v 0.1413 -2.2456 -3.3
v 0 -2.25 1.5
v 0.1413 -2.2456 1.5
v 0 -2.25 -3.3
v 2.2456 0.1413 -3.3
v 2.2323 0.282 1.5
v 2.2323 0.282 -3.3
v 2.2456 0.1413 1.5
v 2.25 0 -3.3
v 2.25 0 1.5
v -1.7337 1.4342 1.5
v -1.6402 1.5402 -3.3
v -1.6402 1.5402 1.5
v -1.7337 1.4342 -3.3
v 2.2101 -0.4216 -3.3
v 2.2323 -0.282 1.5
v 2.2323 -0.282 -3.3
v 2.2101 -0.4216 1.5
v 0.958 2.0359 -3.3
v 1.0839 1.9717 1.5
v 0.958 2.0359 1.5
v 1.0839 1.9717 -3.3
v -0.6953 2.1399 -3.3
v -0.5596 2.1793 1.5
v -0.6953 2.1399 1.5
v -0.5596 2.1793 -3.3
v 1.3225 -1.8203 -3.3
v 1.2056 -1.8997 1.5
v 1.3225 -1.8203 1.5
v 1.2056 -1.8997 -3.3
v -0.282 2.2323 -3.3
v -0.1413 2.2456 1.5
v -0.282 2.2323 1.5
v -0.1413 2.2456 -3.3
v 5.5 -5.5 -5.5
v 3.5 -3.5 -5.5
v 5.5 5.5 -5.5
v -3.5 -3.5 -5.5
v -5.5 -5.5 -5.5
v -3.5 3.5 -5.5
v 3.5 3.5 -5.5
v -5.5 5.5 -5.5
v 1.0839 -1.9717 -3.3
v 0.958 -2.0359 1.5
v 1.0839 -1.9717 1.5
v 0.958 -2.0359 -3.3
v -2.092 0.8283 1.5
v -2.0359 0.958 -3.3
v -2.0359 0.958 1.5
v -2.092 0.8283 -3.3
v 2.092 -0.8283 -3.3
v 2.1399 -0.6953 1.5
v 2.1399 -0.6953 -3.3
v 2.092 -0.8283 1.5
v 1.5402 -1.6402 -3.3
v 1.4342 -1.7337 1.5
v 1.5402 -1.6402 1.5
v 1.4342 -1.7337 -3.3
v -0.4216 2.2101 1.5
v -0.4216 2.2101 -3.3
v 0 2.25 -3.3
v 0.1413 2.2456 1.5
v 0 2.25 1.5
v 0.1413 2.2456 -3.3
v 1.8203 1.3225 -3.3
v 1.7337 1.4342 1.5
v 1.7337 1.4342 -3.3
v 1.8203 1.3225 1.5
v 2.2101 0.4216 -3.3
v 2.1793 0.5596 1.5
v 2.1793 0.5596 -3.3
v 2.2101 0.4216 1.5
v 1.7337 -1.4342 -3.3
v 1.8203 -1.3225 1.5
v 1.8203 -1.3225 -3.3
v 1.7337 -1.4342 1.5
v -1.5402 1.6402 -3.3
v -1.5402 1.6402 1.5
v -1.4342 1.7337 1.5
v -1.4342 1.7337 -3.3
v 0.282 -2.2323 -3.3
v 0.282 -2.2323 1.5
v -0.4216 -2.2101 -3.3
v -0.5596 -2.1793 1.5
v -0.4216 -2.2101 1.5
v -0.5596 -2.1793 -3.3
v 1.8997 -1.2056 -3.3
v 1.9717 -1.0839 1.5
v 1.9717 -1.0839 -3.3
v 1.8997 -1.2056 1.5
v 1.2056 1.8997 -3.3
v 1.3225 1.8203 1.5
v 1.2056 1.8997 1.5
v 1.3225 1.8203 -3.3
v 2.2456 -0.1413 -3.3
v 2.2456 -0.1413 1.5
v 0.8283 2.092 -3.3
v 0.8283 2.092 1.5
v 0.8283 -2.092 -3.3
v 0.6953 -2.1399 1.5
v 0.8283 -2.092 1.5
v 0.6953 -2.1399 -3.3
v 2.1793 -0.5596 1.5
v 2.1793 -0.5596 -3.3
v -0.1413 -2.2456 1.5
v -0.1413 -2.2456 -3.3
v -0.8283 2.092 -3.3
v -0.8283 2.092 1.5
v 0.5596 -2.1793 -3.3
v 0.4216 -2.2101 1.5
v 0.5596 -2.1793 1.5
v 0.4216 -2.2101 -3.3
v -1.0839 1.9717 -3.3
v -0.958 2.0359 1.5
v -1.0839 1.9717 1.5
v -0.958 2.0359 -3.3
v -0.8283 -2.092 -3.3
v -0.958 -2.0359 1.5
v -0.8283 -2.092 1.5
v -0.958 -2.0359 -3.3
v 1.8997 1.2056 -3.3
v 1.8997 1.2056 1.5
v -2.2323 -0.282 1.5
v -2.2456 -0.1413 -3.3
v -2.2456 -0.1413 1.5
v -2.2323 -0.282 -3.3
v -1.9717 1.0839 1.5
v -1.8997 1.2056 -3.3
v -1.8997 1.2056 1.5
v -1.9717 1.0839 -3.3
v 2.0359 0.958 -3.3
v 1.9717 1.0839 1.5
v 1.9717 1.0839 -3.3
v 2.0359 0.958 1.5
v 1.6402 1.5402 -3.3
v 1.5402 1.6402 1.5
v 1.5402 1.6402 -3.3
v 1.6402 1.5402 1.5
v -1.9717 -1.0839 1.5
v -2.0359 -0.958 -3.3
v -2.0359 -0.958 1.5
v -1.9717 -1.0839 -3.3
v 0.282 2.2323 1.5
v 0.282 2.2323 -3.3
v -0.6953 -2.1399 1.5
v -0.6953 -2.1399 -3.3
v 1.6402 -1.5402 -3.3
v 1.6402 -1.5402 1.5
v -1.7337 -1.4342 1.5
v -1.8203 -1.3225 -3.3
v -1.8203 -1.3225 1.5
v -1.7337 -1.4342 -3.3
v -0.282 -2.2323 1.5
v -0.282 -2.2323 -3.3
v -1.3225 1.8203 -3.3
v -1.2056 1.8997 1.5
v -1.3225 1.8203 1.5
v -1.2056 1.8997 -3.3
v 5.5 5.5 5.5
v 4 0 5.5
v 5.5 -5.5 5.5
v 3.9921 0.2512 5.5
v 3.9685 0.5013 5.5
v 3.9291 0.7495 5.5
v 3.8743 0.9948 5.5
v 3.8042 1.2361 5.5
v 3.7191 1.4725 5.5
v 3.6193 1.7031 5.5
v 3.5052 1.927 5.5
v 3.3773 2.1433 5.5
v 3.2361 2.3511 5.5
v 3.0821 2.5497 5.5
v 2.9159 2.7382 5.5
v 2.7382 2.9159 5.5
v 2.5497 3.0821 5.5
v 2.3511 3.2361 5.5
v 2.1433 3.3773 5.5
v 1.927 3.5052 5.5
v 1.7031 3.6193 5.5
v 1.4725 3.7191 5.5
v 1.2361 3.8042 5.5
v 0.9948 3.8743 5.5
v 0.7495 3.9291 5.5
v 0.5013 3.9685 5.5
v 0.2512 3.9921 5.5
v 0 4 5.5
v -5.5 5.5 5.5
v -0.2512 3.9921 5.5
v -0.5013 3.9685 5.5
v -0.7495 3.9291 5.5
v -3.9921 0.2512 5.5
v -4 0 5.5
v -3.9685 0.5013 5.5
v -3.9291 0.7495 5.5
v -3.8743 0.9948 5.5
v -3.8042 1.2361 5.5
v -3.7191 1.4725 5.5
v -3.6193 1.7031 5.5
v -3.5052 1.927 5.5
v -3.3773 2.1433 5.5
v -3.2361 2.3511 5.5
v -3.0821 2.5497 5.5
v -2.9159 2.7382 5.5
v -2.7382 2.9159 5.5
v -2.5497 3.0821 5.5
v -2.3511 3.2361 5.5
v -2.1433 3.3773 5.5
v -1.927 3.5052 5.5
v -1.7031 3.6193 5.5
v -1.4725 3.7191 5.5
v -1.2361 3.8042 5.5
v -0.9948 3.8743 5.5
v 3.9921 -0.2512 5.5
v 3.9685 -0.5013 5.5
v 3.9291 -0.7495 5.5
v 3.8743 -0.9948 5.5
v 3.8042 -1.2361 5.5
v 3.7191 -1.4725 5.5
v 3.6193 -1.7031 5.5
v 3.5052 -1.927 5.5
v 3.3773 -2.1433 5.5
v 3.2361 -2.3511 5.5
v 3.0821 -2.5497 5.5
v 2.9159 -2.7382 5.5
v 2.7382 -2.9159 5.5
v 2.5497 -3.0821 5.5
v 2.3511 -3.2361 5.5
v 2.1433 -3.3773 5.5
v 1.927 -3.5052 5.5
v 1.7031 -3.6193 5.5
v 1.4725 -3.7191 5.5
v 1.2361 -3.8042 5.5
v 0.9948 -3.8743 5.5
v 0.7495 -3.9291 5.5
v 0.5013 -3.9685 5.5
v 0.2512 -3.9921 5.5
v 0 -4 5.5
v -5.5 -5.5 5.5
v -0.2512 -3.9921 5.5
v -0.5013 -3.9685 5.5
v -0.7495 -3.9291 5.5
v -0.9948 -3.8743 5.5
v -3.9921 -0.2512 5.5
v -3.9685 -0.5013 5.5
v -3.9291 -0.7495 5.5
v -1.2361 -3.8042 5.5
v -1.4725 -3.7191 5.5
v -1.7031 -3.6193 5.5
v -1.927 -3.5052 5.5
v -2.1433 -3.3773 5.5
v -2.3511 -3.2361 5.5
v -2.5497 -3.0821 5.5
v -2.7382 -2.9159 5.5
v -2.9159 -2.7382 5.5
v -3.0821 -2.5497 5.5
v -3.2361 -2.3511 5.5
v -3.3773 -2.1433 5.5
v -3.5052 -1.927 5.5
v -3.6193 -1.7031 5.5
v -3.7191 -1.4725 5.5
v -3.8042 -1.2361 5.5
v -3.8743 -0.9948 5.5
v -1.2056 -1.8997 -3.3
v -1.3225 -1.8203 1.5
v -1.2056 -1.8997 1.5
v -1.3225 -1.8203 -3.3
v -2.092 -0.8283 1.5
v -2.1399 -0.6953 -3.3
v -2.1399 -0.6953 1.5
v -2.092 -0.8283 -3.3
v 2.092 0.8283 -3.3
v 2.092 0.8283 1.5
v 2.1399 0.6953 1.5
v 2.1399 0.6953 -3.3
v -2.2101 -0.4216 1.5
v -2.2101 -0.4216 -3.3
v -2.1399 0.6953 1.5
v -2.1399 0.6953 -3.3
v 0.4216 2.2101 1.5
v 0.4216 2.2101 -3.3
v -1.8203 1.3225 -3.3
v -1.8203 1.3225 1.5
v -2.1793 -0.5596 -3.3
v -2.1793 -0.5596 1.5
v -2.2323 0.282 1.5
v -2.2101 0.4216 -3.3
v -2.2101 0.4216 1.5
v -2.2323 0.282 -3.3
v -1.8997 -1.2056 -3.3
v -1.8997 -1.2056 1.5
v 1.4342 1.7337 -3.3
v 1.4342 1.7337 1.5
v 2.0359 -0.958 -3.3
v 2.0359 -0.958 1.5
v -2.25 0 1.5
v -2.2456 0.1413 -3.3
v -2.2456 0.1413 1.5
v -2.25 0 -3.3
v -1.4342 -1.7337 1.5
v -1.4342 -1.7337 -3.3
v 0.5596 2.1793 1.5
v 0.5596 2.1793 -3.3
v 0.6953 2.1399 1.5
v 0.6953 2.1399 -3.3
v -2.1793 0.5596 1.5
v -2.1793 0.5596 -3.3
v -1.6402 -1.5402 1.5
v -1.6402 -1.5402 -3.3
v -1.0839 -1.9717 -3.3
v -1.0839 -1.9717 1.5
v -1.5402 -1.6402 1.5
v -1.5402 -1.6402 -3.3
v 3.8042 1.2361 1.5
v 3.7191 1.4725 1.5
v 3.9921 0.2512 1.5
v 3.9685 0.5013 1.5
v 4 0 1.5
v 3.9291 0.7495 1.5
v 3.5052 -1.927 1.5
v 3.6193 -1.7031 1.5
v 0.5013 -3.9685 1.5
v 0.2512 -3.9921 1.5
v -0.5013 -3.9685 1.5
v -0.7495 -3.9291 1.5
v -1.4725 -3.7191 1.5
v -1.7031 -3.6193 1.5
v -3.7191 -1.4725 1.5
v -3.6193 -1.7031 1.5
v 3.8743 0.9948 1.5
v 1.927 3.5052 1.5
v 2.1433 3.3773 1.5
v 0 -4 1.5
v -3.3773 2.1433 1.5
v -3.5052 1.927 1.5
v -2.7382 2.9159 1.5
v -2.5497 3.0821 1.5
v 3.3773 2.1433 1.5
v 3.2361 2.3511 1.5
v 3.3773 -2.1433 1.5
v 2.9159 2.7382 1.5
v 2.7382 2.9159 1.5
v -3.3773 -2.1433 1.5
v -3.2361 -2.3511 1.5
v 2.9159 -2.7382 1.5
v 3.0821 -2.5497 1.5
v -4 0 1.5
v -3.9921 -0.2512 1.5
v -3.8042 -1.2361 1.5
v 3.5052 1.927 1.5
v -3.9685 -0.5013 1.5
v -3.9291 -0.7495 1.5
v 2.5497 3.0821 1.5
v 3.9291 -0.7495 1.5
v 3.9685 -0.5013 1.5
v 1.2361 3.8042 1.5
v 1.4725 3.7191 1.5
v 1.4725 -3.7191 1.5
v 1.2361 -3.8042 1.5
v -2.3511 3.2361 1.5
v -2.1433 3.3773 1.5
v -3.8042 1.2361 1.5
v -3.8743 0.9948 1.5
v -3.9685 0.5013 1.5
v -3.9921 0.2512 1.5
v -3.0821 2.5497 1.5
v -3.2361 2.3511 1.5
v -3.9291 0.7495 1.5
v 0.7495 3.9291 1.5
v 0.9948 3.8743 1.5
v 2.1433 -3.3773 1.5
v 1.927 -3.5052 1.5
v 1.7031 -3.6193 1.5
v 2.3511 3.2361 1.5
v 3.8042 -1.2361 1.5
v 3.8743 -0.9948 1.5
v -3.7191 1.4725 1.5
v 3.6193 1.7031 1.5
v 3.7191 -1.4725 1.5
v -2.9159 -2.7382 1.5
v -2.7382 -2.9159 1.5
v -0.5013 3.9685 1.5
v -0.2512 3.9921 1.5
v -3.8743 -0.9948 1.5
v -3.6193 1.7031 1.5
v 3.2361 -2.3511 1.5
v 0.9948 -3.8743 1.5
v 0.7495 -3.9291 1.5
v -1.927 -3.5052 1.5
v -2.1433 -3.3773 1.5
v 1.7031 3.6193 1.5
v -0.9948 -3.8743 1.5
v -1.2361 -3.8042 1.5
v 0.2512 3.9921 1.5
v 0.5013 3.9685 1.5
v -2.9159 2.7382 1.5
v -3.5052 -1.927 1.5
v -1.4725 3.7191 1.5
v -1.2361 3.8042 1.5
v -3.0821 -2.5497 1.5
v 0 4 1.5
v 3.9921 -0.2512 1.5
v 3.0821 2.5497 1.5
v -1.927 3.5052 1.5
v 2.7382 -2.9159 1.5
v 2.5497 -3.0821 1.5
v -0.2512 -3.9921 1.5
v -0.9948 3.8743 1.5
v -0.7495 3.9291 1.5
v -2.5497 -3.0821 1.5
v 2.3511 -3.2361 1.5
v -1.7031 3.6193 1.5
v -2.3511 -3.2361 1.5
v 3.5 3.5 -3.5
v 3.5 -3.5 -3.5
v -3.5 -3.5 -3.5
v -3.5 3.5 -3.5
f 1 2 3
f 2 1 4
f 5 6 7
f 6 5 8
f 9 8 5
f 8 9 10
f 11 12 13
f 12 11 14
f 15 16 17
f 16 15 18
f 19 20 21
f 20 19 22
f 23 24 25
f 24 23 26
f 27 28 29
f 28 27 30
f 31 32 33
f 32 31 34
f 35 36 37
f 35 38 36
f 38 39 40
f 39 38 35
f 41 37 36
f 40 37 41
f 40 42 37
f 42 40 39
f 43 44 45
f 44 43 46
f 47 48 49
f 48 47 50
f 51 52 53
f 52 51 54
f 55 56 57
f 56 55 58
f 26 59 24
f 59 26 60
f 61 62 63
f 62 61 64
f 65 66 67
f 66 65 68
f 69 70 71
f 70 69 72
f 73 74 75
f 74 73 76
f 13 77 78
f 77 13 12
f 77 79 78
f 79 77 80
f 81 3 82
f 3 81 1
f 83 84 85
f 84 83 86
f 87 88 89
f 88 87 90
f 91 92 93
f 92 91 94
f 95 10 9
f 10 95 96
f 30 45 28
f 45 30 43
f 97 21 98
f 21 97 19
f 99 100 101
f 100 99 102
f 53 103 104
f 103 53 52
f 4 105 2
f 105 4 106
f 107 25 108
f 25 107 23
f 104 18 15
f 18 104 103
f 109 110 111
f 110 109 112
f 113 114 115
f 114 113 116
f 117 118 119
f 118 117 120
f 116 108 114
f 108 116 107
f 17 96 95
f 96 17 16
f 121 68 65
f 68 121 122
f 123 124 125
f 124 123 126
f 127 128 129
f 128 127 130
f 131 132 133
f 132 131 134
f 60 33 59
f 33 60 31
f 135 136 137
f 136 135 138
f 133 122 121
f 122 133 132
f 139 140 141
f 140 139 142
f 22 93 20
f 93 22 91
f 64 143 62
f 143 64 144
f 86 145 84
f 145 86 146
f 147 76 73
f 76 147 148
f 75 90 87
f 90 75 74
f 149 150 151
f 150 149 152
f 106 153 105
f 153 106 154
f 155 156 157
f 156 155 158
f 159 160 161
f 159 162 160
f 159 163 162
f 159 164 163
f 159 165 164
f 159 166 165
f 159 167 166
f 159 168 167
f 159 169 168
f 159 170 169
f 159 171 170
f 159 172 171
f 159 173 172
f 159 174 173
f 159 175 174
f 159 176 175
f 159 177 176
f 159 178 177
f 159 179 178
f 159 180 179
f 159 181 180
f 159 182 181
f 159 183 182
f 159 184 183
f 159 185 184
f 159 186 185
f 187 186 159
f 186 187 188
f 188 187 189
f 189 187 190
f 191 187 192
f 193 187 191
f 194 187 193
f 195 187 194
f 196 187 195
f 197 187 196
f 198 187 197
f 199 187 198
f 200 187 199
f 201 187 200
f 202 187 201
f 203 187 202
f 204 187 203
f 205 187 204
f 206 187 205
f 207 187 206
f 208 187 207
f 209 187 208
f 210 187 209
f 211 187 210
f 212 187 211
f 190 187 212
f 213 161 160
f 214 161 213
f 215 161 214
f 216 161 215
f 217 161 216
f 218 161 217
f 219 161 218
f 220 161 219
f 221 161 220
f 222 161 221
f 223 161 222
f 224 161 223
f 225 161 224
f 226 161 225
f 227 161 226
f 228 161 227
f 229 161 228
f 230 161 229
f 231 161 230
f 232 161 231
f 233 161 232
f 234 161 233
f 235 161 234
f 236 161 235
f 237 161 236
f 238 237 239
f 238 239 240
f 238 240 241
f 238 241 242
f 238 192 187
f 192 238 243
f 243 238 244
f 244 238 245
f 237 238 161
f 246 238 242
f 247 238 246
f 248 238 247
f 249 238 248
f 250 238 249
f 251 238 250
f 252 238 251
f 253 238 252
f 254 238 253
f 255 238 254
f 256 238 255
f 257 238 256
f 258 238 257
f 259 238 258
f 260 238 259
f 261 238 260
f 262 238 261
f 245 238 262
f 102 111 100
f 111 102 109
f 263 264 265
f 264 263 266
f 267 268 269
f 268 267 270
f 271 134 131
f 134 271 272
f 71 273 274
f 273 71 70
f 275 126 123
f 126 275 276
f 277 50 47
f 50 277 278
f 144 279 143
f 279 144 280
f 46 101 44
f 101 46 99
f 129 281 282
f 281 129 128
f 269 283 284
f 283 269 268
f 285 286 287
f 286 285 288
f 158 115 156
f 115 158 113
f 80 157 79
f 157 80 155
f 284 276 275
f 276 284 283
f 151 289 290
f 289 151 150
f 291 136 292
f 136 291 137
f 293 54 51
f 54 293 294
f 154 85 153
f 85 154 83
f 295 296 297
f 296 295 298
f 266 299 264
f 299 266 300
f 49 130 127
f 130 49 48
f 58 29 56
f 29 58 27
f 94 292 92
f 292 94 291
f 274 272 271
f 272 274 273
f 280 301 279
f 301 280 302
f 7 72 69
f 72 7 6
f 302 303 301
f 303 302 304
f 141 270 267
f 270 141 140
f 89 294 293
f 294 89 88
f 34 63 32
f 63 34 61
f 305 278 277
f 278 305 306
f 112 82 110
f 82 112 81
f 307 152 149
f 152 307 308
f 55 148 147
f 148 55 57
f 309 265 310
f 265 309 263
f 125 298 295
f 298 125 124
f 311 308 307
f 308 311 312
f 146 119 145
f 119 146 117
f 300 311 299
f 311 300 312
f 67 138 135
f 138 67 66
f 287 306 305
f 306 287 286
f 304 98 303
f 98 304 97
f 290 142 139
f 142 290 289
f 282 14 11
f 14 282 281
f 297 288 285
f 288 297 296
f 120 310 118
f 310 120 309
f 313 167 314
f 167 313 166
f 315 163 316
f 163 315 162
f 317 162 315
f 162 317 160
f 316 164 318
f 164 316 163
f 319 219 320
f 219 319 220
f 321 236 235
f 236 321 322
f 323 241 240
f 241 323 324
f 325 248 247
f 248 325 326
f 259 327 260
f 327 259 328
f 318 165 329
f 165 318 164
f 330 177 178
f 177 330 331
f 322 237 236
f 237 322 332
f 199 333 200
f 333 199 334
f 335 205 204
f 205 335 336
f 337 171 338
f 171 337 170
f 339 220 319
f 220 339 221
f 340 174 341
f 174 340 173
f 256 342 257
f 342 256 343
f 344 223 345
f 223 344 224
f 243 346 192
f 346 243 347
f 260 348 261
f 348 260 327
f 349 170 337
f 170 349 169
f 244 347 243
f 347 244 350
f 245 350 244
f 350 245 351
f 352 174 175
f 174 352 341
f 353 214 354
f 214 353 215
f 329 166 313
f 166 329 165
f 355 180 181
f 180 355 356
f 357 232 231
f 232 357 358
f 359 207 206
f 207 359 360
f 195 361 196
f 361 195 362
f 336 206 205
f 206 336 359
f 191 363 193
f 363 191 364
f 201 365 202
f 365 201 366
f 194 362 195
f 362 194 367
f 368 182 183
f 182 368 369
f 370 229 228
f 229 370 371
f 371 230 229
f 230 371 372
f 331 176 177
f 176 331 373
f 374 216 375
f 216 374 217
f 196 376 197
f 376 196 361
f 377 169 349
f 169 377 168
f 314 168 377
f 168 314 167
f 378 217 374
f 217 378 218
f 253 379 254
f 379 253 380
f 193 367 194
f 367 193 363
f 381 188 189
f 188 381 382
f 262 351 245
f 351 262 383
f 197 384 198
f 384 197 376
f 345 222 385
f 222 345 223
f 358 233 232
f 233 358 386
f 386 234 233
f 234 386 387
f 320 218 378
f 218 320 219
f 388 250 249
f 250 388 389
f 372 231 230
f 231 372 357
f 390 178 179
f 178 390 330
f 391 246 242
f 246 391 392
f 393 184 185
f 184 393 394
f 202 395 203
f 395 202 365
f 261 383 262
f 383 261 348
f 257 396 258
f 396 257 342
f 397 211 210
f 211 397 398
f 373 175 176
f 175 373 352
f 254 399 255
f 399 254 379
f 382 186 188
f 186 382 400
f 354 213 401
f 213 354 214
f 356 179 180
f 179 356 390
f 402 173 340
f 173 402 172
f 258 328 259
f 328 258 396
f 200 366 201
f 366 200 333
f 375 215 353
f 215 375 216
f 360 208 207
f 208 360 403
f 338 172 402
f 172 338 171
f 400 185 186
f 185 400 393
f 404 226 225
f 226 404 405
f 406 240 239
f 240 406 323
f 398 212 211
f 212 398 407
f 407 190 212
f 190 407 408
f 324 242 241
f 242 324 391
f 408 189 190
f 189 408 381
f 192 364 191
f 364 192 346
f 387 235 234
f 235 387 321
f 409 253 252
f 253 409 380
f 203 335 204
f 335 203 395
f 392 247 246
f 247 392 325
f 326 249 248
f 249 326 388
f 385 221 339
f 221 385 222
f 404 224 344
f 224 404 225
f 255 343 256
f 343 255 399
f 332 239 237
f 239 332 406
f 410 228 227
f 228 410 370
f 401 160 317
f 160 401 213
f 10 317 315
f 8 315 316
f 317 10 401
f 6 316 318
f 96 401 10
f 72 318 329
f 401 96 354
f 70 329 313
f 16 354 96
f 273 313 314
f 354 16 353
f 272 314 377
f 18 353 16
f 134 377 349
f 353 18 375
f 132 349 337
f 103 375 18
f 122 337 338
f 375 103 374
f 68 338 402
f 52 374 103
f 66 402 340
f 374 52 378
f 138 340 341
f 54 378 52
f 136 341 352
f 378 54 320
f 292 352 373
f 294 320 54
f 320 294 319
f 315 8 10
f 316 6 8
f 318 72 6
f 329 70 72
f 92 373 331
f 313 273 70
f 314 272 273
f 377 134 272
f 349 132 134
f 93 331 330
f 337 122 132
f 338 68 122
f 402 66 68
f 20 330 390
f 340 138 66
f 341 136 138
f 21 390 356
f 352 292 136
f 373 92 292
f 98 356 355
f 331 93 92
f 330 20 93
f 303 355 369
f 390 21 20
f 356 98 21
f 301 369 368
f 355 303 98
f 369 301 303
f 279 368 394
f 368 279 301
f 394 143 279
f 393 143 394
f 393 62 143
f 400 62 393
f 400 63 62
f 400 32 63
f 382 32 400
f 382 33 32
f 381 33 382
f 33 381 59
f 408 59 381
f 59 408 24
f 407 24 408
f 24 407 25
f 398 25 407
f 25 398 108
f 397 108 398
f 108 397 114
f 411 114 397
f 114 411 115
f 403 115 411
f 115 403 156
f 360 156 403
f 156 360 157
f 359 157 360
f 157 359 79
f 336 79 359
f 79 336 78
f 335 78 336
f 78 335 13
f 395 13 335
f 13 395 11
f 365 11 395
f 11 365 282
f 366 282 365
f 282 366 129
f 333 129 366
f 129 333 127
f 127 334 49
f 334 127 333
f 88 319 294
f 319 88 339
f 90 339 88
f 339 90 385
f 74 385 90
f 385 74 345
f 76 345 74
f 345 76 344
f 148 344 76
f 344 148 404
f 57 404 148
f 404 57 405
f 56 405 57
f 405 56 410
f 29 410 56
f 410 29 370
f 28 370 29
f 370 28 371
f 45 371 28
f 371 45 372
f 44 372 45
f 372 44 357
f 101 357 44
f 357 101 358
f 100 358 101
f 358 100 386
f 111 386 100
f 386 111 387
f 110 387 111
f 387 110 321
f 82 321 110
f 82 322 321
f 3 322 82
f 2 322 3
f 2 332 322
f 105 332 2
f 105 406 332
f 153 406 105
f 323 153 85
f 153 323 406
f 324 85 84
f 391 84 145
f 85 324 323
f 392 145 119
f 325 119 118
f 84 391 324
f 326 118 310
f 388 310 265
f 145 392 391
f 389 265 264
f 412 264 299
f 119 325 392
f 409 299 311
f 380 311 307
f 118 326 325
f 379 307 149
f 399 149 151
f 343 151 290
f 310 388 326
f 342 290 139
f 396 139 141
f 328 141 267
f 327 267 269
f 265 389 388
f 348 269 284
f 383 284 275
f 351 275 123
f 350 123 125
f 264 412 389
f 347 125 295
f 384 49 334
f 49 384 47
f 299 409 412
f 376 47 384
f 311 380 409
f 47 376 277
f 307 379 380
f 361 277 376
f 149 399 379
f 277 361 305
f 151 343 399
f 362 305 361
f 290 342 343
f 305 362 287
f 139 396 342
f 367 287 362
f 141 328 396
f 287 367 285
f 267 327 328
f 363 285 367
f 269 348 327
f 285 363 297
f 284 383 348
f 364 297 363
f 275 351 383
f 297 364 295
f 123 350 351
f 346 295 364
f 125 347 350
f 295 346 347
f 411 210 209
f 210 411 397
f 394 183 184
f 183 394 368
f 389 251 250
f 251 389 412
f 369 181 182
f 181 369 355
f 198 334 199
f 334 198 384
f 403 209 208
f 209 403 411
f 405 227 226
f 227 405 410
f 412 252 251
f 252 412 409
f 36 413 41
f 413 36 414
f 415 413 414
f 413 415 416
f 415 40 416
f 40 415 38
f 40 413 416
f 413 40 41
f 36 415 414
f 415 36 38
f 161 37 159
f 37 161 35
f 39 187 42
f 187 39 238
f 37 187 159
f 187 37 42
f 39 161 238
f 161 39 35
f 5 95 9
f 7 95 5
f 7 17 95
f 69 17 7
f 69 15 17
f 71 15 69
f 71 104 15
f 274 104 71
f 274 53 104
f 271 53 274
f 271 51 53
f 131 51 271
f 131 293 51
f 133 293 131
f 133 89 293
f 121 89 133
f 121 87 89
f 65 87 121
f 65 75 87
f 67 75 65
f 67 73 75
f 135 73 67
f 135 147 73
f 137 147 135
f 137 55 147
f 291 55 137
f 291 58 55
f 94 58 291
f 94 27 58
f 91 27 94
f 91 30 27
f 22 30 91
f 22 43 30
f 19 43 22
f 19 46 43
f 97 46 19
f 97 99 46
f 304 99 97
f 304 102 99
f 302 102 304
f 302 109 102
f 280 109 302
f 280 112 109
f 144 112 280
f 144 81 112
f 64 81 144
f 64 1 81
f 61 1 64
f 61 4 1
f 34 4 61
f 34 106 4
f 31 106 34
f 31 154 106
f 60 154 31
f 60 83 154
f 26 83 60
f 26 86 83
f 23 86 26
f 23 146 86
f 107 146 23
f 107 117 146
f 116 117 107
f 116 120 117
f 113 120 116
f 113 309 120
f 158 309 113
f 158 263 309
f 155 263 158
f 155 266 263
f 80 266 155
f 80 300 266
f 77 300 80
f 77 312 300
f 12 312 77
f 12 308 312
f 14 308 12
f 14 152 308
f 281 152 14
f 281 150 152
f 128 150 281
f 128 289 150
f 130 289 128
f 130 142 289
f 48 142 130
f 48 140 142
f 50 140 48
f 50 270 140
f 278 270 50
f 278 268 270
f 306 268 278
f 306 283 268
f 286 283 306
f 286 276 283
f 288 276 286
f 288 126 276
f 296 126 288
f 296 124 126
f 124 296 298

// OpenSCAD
squarenuthead=7;
squarenutthickness=2;
boltdiam=4.5;
bolthead=8;
boltheadt=4;
margin=4;
block=squarenuthead+margin;
$fn=100;

union() {
  difference() {
    cube(block,center=true);
    union() {
      cylinder(h=block, d=boltdiam, center=true);
      translate([0,0,block/2-boltheadt/2])
        cylinder(h=boltheadt, d=bolthead, center=true);
      translate([0,0,-block/2+squarenutthickness/2])
        cube([squarenuthead,squarenuthead,squarenutthickness],center=true);
    }
  }
  // support monolayer
  translate([0,0,-block/2+squarenutthickness+0.1])
      color("red") cube([block,block,0.2], center=true);
}
